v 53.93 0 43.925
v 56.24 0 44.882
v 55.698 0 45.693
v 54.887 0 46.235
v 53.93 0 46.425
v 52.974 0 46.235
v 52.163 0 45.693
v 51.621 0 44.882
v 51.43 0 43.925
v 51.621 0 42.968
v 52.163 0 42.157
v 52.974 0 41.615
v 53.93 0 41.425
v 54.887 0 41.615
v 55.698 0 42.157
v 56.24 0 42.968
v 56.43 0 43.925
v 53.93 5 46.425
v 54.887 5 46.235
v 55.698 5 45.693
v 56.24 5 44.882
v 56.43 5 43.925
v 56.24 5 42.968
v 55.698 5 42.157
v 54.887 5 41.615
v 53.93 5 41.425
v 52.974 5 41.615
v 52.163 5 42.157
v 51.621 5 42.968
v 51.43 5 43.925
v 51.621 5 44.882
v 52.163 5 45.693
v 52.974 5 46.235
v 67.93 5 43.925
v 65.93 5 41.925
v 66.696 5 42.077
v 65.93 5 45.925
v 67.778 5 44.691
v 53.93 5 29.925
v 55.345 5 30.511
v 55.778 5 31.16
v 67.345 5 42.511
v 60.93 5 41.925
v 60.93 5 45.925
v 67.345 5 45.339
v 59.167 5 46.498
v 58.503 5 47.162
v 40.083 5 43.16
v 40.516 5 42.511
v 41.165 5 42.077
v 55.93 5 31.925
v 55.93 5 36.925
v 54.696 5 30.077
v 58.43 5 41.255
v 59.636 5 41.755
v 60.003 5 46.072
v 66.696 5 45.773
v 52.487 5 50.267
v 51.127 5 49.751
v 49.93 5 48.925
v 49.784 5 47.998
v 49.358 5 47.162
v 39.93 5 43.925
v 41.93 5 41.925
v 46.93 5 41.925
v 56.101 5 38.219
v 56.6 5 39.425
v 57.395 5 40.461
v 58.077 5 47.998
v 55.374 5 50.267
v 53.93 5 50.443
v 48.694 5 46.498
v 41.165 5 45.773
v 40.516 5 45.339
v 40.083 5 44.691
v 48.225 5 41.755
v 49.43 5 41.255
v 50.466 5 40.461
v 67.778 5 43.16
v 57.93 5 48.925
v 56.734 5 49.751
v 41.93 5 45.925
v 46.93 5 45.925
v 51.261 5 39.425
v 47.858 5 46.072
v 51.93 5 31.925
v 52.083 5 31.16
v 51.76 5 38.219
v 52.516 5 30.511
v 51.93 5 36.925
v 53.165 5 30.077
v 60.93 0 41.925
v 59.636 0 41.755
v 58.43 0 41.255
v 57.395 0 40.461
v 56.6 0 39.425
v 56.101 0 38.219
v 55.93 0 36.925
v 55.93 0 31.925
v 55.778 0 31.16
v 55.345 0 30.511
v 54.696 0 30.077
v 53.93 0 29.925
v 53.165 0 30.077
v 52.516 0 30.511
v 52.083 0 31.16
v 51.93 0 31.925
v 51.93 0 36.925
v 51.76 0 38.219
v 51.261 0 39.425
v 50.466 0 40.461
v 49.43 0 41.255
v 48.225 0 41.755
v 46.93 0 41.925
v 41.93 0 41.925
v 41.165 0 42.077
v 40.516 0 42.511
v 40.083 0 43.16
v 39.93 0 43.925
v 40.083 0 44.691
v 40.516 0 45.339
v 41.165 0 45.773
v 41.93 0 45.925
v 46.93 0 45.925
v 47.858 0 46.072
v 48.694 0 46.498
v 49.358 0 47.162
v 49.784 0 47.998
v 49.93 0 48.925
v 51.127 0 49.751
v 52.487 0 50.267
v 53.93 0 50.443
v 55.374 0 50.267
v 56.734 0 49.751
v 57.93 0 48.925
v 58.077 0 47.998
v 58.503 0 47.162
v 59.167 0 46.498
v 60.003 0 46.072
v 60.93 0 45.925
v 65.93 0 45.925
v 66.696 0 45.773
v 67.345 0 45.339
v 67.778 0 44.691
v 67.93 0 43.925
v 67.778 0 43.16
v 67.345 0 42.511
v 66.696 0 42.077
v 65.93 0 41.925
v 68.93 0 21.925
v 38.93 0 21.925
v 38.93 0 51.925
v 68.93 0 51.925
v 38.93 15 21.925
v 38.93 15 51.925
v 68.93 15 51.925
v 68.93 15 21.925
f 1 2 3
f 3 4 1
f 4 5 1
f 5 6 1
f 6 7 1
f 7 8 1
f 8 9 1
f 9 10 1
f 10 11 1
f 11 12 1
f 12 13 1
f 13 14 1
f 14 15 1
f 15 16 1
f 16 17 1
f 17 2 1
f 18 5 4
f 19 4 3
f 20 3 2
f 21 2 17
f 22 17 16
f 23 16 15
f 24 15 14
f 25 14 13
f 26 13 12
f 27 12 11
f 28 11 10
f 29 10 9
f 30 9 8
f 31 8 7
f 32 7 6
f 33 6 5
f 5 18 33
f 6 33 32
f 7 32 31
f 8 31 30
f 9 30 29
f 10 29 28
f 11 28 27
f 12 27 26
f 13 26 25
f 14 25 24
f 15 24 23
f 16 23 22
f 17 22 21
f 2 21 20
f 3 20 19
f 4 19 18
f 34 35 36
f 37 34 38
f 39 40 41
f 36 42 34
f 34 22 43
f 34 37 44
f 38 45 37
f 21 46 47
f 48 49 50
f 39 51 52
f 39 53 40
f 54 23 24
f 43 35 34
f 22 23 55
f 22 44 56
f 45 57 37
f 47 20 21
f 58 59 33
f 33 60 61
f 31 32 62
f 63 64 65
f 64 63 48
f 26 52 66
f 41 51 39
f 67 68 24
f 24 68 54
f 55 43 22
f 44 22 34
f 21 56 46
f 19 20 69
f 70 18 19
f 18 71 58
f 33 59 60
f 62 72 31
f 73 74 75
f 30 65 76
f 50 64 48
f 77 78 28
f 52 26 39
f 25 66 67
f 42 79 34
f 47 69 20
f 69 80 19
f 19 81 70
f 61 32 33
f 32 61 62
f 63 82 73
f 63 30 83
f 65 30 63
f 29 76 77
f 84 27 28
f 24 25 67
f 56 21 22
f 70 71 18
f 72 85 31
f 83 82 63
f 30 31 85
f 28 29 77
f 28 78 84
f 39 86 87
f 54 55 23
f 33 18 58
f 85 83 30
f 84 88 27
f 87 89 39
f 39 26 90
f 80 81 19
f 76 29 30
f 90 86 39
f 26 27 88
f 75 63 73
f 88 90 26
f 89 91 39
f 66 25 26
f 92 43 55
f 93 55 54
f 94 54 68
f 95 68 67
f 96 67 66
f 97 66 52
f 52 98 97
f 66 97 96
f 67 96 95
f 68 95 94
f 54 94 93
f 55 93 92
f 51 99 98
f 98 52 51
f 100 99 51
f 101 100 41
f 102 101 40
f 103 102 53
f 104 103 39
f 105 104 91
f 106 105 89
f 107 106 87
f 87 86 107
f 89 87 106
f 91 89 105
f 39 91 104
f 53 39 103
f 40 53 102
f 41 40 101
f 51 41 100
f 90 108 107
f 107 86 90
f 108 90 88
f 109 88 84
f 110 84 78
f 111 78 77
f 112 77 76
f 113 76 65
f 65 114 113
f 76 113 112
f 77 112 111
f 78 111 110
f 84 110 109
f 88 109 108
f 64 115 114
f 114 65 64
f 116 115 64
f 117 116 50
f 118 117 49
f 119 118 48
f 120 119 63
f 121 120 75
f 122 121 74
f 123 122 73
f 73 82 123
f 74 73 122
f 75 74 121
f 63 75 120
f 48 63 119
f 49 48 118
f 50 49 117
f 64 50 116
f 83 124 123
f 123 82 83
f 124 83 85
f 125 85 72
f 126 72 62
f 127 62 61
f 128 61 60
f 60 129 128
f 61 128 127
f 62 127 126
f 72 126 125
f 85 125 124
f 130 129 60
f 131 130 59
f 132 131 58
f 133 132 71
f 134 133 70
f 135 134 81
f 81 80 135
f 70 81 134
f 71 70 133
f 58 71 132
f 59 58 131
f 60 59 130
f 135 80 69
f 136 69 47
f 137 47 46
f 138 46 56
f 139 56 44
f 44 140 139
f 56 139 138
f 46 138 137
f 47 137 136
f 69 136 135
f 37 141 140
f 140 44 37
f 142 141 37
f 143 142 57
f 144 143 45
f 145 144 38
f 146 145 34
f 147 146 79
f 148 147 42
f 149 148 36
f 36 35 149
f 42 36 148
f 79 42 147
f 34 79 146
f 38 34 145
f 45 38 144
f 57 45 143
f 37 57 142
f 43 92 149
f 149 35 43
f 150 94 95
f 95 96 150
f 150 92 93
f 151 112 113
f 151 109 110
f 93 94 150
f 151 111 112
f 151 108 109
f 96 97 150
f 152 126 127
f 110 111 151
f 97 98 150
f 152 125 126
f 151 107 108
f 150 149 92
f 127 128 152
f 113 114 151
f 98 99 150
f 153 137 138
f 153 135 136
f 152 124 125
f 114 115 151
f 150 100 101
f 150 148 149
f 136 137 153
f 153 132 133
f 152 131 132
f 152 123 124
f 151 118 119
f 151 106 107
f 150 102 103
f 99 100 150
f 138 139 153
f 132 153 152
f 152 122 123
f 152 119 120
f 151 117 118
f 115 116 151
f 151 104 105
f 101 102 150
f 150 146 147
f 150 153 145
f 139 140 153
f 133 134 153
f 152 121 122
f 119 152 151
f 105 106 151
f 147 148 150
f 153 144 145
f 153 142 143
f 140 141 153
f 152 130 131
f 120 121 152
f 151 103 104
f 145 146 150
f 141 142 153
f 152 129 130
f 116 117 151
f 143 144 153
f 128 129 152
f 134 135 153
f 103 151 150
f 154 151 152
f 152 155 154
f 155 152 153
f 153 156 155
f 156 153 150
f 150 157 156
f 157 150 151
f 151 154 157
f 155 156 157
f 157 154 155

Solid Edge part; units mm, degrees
sketch "Sketch1" plane through (0, 0, 0) normal (0, -1, 0) x (1, 0, 0)
  line L0 (38.9305, 51.9251) -> (68.9305, 51.9251)
  line L1 (68.9305, 51.9251) -> (68.9305, 21.9251)
  line L2 (68.9305, 21.9251) -> (38.9305, 21.9251)
  line L3 (38.9305, 21.9251) -> (38.9305, 51.9251)
  dimension "D1" = 30
  dimension "D2" = 30
extrude "Protrusion1" add sketch "Sketch1" against normal blind 15
sketch "Sketch2" plane through (63.9305, 0, 41.9251) normal (0, -1, 0) x (1, 0, 0)
  line L0 (-8, -5) -> (-8, -10)
  arc A0 (-8, -10) -> (-12, -10) centre (-10, -10) cw
  line L1 (-12, -10) -> (-12, -5)
  arc A1 (-12, -5) -> (-17, 0) centre (-17, -5) ccw
  line L2 (-17, 0) -> (-22, 0)
  arc A2 (-22, 0) -> (-22, 4) centre (-22, 2) cw
  line L3 (-22, 4) -> (-17, 4)
  arc A3 (-17, 4) -> (-14, 7) centre (-17, 7) ccw
  arc A4 (-14, 7) -> (-6, 7) centre (-10, 2.4867) cw
  arc A5 (-3, 4) -> (-6, 7) centre (-3, 7) cw
  line L4 (2, 4) -> (-3, 4)
  arc A6 (2, 0) -> (2, 4) centre (2, 2) ccw
  line L5 (-3, 0) -> (2, 0)
  arc A7 (-8, -5) -> (-3, 0) centre (-3, -5) cw
  dimension "D1" = 5
  dimension "D2" = 10
  dimension "D3" = 2
  dimension "D4" = 2
  dimension "D5" = 5
  dimension "D6" = 5
  dimension "D7" = 5
  dimension "D8" = 2
  dimension "D9" = 5
  dimension "D10" = 5
  dimension "D11" = 2
  dimension "D12" = 5
  dimension "D13" = 5
  dimension "D14" = 3
  dimension "D15" = 3
extrude "ExtrudedCutout_4" cut sketch "Sketch2" against normal blind 5
sketch "Sketch3" plane through (63.9305, 5, 35.4251) normal (0, -1, 0) x (1, 0, 0)
  circle A0 centre (-10, 8.5) radius 2.5
  dimension "D1" = 5
extrude "ExtrudedProtrusion_3" add sketch "Sketch3" along normal blind 5
